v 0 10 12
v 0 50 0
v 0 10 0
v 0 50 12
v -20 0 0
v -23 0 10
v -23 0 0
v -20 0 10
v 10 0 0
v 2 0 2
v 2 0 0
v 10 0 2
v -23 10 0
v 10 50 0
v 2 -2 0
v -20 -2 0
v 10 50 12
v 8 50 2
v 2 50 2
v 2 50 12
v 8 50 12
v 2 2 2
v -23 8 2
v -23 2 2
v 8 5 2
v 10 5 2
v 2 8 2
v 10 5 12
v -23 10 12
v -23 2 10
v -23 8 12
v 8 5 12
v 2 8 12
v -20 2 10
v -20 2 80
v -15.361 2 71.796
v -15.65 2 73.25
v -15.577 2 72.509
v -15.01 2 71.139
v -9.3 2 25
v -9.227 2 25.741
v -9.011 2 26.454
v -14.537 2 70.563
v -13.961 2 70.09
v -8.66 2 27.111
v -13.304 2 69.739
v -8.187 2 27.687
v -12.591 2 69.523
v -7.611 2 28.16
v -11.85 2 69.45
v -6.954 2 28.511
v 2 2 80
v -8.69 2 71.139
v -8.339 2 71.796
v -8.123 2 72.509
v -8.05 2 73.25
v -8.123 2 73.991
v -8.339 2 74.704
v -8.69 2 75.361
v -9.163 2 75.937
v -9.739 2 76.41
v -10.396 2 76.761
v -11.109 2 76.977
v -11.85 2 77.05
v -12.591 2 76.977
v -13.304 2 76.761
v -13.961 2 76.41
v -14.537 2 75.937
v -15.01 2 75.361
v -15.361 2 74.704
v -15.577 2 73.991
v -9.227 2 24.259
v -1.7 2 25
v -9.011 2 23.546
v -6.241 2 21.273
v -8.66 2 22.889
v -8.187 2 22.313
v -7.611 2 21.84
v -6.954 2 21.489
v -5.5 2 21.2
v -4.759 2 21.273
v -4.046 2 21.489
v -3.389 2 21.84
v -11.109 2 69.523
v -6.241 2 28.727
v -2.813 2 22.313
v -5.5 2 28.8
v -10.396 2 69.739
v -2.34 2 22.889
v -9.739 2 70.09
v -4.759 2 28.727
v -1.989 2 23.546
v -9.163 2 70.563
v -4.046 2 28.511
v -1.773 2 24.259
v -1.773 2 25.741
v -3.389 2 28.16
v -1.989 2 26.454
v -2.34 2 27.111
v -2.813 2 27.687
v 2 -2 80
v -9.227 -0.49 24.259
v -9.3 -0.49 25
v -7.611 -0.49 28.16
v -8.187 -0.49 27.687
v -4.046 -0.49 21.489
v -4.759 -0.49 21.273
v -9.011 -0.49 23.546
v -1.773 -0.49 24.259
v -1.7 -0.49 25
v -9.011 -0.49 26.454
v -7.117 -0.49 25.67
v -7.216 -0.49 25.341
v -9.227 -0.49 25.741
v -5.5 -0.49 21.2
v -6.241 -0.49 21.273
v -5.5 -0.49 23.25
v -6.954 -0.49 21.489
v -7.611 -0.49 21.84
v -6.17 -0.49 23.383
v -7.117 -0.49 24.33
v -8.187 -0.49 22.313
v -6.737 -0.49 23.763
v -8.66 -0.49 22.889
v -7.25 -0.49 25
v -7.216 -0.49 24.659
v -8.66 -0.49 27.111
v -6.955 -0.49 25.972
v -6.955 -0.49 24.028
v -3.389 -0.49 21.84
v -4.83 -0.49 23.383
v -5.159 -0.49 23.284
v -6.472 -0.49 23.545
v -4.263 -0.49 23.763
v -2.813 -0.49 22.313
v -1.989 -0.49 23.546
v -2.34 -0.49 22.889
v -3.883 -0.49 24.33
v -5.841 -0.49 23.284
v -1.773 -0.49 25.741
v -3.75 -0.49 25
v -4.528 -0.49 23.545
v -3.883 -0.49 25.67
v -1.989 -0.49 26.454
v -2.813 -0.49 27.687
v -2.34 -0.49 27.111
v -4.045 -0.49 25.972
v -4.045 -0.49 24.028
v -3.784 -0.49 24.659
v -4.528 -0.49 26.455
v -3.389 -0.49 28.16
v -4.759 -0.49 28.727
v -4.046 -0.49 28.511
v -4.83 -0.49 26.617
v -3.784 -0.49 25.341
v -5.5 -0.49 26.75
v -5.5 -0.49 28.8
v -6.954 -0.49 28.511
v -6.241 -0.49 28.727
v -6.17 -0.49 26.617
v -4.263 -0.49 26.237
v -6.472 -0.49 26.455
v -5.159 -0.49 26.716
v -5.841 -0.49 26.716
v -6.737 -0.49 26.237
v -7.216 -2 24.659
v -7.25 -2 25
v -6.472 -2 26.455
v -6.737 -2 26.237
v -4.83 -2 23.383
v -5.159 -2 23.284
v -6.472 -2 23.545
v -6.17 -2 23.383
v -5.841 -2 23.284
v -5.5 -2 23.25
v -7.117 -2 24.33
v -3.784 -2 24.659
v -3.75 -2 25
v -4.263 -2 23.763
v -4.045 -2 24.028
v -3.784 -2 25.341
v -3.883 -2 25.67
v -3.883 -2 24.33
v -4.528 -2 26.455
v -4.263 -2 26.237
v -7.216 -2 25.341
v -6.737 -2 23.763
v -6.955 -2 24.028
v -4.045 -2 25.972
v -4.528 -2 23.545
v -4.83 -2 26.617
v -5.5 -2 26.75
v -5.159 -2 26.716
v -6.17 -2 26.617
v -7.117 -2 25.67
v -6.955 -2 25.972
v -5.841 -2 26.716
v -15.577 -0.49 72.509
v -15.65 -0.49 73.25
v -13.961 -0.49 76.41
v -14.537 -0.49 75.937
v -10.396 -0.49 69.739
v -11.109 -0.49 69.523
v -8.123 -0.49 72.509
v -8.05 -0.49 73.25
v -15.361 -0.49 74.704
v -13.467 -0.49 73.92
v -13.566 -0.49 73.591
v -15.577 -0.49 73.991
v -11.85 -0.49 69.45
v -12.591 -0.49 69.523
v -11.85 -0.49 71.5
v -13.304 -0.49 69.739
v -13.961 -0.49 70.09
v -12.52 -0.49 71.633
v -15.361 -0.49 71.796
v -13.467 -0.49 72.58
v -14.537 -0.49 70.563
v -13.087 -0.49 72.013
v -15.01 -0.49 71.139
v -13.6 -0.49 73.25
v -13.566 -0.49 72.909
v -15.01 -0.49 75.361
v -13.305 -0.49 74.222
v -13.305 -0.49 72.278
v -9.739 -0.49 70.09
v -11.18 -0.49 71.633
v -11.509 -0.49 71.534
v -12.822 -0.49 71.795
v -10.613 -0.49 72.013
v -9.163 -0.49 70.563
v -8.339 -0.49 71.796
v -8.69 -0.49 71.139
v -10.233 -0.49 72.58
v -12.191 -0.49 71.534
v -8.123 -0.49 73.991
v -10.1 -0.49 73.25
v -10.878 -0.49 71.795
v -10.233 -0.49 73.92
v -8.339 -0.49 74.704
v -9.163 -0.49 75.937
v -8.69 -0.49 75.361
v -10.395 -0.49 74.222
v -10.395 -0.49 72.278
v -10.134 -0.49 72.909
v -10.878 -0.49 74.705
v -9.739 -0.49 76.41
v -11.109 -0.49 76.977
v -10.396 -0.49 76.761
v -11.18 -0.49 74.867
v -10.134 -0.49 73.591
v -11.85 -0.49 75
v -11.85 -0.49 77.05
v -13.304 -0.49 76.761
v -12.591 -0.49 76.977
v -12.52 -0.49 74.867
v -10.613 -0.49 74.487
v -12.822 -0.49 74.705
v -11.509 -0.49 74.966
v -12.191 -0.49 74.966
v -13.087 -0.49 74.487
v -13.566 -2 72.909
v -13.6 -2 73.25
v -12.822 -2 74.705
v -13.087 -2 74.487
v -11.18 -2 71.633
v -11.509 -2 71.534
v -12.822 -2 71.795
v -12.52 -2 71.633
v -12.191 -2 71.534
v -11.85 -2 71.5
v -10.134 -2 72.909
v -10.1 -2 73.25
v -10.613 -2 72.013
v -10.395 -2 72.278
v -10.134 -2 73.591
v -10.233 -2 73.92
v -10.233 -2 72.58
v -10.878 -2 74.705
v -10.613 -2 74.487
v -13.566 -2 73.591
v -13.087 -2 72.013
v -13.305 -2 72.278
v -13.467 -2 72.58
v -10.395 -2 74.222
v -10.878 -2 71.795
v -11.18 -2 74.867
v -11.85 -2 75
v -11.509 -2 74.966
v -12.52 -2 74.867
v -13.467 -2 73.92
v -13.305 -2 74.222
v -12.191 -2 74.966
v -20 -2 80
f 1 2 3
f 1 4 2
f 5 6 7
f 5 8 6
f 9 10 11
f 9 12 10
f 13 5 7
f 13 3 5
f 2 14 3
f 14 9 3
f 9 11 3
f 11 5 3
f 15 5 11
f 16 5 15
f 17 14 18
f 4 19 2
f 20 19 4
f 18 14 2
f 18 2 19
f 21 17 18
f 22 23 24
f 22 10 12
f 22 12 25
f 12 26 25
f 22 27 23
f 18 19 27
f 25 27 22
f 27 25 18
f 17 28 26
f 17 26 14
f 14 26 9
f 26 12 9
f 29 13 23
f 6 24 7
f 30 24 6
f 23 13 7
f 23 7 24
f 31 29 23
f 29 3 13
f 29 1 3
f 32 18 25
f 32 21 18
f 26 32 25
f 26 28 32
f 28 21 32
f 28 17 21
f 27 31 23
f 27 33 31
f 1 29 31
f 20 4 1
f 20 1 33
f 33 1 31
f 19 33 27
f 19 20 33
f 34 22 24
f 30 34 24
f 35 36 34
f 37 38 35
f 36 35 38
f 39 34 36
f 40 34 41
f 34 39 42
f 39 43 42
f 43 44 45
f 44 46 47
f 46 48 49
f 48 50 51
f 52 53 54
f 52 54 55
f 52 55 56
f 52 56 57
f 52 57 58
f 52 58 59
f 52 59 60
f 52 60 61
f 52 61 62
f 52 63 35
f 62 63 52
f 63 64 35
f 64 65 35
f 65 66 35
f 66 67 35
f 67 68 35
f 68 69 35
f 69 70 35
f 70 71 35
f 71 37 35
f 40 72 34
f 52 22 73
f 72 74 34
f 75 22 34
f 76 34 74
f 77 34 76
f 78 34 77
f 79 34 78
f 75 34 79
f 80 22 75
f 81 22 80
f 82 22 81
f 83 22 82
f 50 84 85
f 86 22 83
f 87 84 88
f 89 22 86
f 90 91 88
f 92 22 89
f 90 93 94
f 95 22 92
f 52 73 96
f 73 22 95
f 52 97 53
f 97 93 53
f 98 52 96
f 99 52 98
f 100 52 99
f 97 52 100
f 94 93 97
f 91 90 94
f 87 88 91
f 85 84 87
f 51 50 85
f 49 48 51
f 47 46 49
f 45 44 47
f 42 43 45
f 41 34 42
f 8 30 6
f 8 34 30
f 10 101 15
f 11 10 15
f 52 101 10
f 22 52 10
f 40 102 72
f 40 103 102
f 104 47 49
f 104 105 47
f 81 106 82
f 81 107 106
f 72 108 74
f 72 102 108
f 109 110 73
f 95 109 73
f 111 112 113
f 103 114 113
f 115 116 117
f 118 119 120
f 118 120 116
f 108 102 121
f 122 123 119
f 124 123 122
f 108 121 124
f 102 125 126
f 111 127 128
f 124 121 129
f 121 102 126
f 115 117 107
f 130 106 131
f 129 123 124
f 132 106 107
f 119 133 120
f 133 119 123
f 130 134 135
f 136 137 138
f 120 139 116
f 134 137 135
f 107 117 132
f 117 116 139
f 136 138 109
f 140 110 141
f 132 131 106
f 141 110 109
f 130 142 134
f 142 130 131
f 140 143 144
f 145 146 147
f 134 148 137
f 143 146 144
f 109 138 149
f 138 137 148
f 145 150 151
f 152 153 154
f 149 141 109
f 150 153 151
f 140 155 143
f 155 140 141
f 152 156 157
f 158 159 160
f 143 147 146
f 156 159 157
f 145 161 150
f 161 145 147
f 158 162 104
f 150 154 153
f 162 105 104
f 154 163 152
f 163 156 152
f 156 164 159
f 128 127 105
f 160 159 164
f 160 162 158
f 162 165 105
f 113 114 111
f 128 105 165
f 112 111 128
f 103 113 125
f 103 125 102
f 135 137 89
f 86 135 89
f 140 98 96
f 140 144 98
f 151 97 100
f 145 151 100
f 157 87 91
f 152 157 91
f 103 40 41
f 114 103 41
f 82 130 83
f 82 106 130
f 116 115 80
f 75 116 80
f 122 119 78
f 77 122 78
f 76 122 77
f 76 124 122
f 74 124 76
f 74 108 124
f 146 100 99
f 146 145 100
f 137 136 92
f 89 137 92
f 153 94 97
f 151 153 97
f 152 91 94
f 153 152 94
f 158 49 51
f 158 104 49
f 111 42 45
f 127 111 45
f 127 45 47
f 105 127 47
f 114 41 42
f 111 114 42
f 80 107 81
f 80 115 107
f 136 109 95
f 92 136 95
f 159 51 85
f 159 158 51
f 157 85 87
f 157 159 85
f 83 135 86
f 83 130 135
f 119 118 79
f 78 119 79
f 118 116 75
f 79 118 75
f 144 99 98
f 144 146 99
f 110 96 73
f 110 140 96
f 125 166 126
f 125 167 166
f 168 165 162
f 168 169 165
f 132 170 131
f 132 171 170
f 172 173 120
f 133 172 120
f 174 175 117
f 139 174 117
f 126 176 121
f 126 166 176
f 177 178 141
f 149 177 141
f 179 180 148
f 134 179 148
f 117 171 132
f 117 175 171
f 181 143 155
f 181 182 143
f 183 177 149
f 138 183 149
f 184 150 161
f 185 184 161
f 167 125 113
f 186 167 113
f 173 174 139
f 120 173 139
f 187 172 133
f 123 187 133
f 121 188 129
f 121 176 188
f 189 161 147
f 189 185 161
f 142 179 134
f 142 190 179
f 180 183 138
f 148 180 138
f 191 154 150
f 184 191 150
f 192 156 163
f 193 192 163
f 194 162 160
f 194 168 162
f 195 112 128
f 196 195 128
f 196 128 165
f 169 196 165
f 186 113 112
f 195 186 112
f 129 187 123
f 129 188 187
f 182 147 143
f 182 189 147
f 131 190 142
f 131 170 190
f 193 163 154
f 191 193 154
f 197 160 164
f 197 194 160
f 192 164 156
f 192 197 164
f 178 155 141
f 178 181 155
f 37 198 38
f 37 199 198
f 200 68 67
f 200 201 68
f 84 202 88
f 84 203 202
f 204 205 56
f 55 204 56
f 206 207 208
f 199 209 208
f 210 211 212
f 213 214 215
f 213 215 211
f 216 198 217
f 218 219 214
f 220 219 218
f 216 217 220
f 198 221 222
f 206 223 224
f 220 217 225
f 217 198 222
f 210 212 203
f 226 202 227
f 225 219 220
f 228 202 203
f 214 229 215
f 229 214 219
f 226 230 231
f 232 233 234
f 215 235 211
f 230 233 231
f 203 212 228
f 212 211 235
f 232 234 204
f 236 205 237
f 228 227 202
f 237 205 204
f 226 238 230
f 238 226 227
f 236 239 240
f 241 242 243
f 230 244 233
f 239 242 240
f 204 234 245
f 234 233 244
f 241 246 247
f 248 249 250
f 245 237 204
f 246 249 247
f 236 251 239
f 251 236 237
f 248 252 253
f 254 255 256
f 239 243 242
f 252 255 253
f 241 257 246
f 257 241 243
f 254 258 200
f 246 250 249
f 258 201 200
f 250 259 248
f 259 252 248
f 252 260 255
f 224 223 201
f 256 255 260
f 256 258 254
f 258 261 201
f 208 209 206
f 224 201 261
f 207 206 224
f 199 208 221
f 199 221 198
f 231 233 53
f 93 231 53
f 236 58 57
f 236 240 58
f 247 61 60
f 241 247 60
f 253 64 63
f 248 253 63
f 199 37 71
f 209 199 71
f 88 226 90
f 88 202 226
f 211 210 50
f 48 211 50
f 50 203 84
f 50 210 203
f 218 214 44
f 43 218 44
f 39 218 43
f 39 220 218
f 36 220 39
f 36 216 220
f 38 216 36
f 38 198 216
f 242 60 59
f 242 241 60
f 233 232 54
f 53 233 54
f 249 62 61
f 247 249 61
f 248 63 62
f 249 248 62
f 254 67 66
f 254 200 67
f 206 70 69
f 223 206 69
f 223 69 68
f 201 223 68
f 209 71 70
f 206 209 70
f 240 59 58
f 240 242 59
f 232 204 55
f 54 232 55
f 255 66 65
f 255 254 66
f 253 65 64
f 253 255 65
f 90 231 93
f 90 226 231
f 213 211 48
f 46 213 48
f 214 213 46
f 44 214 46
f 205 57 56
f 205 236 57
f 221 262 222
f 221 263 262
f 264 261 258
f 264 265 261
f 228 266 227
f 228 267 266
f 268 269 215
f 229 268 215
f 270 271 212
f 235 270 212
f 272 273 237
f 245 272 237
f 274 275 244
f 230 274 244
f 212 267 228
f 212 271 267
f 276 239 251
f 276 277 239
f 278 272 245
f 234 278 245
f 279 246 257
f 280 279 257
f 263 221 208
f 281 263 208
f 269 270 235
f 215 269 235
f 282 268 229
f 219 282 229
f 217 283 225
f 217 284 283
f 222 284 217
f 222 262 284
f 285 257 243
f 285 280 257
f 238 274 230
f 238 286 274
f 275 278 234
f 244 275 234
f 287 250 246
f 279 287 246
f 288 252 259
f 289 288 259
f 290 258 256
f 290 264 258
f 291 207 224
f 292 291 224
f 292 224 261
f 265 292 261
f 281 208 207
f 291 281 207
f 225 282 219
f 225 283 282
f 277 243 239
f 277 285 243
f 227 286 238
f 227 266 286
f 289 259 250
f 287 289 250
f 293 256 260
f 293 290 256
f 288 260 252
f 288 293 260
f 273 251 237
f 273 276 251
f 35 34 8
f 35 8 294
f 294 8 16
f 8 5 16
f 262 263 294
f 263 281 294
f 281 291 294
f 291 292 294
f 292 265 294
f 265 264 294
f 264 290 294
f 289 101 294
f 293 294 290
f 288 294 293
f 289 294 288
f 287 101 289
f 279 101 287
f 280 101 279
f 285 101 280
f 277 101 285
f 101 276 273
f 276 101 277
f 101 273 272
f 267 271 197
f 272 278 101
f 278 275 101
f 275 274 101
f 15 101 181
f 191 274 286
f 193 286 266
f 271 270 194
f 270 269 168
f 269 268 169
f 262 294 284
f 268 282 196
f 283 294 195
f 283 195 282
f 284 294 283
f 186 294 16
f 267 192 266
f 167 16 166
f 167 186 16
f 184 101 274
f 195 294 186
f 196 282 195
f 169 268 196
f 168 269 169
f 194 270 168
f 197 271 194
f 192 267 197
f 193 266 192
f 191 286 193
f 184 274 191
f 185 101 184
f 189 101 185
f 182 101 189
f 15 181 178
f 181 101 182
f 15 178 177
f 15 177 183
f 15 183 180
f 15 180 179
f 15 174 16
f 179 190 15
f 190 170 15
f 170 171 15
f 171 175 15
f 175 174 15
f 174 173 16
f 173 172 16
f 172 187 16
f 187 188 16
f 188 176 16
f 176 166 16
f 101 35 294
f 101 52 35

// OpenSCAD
// file: arduino/arduino.scad
ARDUINO_WIDTH = 54;
ARDUINO_LENGTH = 69;

module arduino_cutout(height = 10, padding = 5){
	width = ARDUINO_WIDTH + padding;
	length = ARDUINO_LENGTH + padding;

	translate([0, 0, height/2])
		cube([length, width, height], center=true);
}

module arduino_screwholes(height = 10){
	module m3(){
		cylinder(height, 1.6, 1.6);
	}

	translate([-ARDUINO_LENGTH/2, -ARDUINO_WIDTH/2, 0]){
		pos = [
			[15.3, 50.7],
			[14.0, 2.5],
			[66.1, 7.6],
			[66.1, 35.5]
		];

		for (p = pos){
			translate(p)
			m3();
		}
	}
}

module arduino(){
	translate([-3.5,0])
	import("arduino/arduino.stl");
}
// main file
//--------------------------------------------------------------------//
// Prusa i3 RAMPS 1.4 hanging mount                                   //
//--------------------------------------------------------------------//
// Author        : Patrick Henry                                      //
// Email         : phenry@pontetec.com                                //
// License       : MIT - http://opensource.org/licenses/MIT           //
//--------------------------------------------------------------------//
//
// This fits the frame_thickness or wooden laser cut frames found here:
// http://www.thingiverse.com/thing:40465
// The value of frame_thickness should be adjusted accordingly. Here I
// have it set to 6mm acrylic. It may or may not work with the
// aluminum frame: http://www.thingiverse.com/thing:68296
// 
// Once you've built your Prusa i3, the obvious question is what to
// do with the RAMPS and Arduino module? I've seen various box ideas,
// but they don't affort easy access, and besides when you start out
// printing, your calibration is probably off so you won't get a snug
// fit box.
//
// My solution is to attach a small mount which hangs from the top of
// the acrylic frame on the right hand side. This has screw holes to
// line up with those of the Arduino and RAMPS boards, and the whole
// unit can simply be slid on to those screws.
//
// Additionally, to reduce any torsion between the two boards as they
// hang in place, I have a simple surround that snaps onto the bottom
// of the Arduino MEGA 2560. More screws can be inserted to help keep
// the Arduino and RAMPS board together. I would not recommend using
// nuts on the RAMPS side, as that board is very cramped. However,
// the holes in the middle of the Arduino board lead through to
// relatively uncrowded areas where a washer and nut could be used.
//
//--------------------------------------------------------------------//

include <arduino/arduino.scad>

//--------------------------------------------------------------------//
// Useful constants                                                   //
//--------------------------------------------------------------------//

eps=0.01;
pz=2;
nz=2+eps*2;
mz=pz+10;
wall=2;
acrylic=6;
over=wall+acrylic;
surround=wall*2+acrylic;

//--------------------------------------------------------------------//
// Module: base for Arduino board.                                    //
//--------------------------------------------------------------------//

module base() {
  translate([0,0,2])
    bumper(boardType=MEGA2560, mountingHoles=false);
  difference()
  {
    union()
    {
      boardShape(MEGA2560,1.4,pz);
      holePlacement(MEGA2560)
        cylinder(r = 3.2/2+2, h = 2+pz, $fn = 32);
    }
    translate([0,0,-eps])
      holePlacement(MEGA2560)
        cylinder(r = 3.2/2+.5, h = 2+nz, $fn = 32);
    translate([7,5,-eps])
      cube([40,55,nz]);
    translate([7,72,-eps])
      cube([40,23,nz]);
  }
}

//--------------------------------------------------------------------//
// Module: hanger can be used to hang anything on the frame.          //
//--------------------------------------------------------------------//

module hanger() {
  cube([surround,50,pz]);
  translate([surround-33,0,0])
    cube([33,surround,pz]);

  translate([over,5,0])
    cube([wall,45,mz]);
  translate([0,over,0])
    cube([wall,50-over,mz]);

  translate([surround-33,0,0])
    cube([33-over,wall,mz-wall]);
  translate([surround-33,over,0])
    cube([33-over,wall,mz]);
}

//--------------------------------------------------------------------//
// Module: hanger_mount extends hangar to mount the Arduino.          //
//--------------------------------------------------------------------//

module hanger_mount() {
  translate([-20.0,-wall,0])
  {
    difference()
    {
      cube([20+wall,wall*2,mz-wall+70]);
      translate([14.5,wall*2+eps,mz-wall+15])
        rotate([90,0,0])
        {
          cylinder(r = 1+5.6/2, h = 2.5, $fn = 32);
          cylinder(r = .25+3/2, h = wall*2+2*eps, $fn = 32);
        }
      translate([8.15,wall*2+eps,mz-wall+63.25])
        rotate([90,0,0])
        {
          cylinder(r = 1+5.6/2, h = 2.5, $fn = 32);
          cylinder(r = .25+3/2, h = wall*2+2*eps+10, $fn = 32);
        }
      // This is the hole placement given by the arduino library,
      // for reference. I find that mine fit better.
      /*
      translate([-82,2*wall+eps,mz-wall+65.75])
        rotate([0,90,-90])
          holePlacement(MEGA2560)
            union()
            {
              cylinder(r = 1+5.6/2, h = 2.5, $fn = 32);
              cylinder(r = .5+3/2, h = wall*2+2*eps, $fn = 32);
            }
      */
    }
  }
}

//--------------------------------------------------------------------//
// Module: display_model shows how the whole thing hangs together.    //
//--------------------------------------------------------------------//
module display_model() {
  rotate([0,180,0])
  {
    hanger();
    hanger_mount();
  }
  
  translate([102,0,-75.8])
    rotate([90,-90,0])
      base();
}

//--------------------------------------------------------------------//
// Main body. Note that I found the measurements in base slightly off //
// (these come from the arduino library). Therefore a small scaling   //
// factor was needed to print a close fitting base. YMMV.             //
//--------------------------------------------------------------------//

//display_model();
//scale([105/104,58/57,1])
//scale([101.5/101,53.8/53,1])
//{
//  rotate([0,0,90])
//  {
//    base();
//  }
//}
hanger();
hanger_mount();
